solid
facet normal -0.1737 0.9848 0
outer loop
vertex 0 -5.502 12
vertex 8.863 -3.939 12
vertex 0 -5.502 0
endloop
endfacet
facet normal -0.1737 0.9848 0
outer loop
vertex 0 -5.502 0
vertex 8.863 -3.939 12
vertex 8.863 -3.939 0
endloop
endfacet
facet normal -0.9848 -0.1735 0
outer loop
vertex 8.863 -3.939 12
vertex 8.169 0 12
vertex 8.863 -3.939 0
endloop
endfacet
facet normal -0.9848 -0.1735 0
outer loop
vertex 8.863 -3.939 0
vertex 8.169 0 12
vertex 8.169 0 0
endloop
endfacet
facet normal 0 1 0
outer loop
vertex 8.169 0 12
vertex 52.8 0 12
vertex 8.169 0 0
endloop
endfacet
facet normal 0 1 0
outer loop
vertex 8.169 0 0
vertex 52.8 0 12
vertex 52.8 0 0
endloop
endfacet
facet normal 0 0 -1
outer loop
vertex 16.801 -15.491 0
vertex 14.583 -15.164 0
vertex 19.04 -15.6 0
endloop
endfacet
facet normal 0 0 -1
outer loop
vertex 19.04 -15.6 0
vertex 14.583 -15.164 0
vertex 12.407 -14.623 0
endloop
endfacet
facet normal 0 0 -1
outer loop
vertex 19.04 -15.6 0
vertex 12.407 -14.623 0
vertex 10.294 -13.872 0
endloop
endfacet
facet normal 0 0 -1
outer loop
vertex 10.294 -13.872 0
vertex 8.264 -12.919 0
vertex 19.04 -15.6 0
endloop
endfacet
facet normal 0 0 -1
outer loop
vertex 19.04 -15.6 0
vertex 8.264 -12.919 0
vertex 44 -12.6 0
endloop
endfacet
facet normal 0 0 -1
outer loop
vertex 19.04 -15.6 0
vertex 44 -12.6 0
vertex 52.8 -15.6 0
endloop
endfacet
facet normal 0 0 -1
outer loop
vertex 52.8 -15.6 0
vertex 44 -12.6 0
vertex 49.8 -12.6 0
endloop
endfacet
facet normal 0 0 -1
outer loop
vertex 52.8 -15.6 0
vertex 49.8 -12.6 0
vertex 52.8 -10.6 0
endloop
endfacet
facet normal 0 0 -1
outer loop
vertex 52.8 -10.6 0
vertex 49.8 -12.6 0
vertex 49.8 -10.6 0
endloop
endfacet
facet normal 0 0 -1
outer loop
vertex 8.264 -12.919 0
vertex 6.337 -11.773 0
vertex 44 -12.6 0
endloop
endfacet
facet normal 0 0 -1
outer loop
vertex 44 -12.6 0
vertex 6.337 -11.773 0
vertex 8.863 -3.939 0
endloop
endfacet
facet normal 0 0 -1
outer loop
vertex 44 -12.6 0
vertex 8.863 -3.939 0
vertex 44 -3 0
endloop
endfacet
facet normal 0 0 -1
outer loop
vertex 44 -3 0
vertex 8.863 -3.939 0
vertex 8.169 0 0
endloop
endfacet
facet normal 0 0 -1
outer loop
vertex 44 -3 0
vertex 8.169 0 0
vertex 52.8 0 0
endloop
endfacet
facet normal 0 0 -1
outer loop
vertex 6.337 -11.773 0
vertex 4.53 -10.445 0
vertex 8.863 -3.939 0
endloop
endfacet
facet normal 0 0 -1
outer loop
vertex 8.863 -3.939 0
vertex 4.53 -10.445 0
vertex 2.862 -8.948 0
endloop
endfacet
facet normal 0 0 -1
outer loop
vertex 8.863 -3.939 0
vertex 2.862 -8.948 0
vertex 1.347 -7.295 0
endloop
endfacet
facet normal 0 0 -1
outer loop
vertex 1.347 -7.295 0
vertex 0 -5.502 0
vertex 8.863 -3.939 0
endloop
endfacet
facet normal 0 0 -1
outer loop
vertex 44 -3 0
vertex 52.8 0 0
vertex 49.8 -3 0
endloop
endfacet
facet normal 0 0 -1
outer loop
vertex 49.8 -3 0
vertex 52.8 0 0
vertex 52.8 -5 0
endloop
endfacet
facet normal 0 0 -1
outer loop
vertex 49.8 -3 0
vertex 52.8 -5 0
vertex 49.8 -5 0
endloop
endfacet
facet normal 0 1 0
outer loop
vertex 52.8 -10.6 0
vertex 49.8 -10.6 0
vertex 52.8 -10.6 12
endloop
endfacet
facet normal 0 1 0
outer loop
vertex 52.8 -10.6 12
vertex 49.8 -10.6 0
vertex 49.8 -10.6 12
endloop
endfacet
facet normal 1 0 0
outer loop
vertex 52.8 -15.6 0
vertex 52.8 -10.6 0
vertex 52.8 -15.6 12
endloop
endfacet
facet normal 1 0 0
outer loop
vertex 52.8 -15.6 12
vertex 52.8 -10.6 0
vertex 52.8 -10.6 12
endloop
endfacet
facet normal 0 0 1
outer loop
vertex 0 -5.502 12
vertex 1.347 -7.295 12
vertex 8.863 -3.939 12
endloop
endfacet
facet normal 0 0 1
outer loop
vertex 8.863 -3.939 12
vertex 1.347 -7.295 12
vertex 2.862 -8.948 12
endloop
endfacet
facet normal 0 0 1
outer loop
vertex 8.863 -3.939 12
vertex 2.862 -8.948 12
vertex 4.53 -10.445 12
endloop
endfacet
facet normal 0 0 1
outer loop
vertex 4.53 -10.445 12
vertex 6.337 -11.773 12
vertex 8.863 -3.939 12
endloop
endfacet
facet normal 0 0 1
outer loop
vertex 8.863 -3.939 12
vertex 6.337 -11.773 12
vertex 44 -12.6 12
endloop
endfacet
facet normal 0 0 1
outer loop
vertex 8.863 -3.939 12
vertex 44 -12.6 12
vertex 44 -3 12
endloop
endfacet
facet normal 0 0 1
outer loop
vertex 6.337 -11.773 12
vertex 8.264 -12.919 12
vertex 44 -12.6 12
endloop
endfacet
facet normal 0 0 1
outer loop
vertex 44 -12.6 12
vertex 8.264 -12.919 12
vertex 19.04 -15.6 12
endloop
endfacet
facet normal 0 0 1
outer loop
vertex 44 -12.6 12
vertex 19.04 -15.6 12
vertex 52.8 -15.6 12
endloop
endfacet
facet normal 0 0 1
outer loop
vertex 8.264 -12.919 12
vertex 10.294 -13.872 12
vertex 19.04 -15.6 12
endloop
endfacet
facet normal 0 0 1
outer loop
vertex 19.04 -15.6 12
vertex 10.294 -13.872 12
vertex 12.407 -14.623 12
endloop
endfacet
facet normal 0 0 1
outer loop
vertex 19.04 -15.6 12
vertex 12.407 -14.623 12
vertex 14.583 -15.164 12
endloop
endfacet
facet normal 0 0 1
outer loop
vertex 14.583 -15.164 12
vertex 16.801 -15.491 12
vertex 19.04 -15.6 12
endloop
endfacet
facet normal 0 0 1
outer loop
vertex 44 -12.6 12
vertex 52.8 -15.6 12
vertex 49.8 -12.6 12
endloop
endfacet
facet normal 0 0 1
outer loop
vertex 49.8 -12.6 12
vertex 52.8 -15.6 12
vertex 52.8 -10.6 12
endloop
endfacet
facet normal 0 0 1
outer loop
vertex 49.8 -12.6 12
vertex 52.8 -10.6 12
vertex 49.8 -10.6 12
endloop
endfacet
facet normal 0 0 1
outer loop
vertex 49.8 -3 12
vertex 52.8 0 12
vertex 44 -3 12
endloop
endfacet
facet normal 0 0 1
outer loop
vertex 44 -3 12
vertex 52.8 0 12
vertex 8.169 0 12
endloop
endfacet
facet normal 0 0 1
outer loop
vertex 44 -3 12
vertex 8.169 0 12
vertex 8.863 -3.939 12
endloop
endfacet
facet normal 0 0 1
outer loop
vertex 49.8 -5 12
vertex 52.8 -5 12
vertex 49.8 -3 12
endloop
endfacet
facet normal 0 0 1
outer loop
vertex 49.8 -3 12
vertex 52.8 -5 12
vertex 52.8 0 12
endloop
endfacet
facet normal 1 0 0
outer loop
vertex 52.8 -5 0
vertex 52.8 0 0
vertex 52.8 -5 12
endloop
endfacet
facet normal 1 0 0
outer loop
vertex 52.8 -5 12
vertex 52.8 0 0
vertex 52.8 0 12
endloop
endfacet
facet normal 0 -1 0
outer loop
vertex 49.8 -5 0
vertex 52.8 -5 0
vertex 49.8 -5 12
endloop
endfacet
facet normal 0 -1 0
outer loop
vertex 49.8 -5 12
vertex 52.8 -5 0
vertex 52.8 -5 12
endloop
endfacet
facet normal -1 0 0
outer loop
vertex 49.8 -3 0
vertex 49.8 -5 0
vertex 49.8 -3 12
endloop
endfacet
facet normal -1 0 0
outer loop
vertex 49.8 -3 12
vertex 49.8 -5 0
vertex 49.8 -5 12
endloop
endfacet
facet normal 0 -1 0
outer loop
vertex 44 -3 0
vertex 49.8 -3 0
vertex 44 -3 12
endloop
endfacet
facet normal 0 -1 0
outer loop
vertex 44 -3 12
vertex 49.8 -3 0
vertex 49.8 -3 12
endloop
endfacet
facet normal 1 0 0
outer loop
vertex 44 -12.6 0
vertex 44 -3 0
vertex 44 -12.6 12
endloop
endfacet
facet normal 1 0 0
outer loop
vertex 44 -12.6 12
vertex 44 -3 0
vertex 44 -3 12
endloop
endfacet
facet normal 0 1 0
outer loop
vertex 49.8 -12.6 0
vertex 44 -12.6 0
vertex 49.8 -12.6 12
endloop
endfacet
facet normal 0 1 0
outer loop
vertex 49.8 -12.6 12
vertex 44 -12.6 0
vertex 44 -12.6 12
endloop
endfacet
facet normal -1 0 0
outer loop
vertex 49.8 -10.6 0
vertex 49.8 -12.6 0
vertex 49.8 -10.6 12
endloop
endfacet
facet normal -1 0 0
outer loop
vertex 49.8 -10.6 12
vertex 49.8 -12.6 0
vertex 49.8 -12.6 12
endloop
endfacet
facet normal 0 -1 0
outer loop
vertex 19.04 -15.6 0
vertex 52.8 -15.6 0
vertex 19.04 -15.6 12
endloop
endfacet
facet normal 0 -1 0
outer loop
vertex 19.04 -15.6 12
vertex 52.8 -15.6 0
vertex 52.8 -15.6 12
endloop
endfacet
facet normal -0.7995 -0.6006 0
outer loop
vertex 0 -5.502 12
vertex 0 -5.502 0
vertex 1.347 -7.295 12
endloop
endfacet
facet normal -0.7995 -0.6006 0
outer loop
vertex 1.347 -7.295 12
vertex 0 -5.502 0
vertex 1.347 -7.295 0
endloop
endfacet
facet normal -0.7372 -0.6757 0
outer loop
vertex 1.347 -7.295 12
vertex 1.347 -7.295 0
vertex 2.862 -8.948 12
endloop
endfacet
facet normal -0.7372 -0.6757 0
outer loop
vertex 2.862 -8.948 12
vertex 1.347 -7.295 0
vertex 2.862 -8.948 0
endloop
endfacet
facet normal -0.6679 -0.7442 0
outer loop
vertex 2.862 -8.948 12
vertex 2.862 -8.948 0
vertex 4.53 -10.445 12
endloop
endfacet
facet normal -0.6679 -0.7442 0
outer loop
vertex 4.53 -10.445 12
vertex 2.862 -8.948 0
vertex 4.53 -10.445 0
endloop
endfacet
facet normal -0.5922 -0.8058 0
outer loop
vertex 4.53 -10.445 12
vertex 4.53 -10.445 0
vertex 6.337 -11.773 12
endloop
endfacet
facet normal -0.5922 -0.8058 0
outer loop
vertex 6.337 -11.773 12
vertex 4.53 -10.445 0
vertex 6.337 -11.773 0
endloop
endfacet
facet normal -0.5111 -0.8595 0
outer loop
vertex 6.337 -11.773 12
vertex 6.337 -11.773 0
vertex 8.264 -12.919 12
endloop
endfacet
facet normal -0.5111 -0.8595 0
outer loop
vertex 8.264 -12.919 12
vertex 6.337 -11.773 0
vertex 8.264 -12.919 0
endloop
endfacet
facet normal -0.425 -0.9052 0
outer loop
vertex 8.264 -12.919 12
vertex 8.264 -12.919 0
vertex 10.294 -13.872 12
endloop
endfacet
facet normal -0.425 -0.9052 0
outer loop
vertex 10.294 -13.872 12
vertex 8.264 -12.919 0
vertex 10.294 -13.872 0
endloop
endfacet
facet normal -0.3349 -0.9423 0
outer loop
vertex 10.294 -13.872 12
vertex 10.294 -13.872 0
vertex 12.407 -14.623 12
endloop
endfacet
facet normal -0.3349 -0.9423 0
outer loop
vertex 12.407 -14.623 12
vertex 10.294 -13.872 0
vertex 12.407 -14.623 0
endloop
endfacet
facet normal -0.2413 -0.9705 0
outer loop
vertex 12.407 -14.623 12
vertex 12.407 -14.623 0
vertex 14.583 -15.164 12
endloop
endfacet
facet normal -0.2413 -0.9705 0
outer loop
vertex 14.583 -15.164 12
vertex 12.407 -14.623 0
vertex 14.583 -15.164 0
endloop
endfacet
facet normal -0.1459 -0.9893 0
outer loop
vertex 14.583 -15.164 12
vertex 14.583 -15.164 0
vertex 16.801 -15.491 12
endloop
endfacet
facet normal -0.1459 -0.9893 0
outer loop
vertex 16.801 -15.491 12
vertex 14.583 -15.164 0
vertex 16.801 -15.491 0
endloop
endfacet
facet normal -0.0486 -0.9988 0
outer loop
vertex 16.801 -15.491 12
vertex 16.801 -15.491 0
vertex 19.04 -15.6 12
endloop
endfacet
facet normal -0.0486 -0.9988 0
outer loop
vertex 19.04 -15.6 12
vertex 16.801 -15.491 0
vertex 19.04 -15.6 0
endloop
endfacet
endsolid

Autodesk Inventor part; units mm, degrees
ref_plane "YZ Plane" through (0, 0, 0) normal (1, 0, 0) x (0, 1, 0)
ref_plane "XZ Plane" through (0, 0, 0) normal (0, 1, 0) x (-1, 0, 0)
ref_plane "XY Plane" through (0, 0, 0) normal (0, 0, 1) x (1, 0, 0)
sketch "Sketch5" plane through (0, 0, 0) normal (0, 0, 1) x (1, 0, 0)
  line L0 (52.8, -15.6) -> (52.8, -10.6)
  line L1 (52.8, -10.6) -> (49.8, -10.6)
  line L2 (49.8, -10.6) -> (49.8, -12.6)
  line L3 (44, -12.6) -> (44, -3)
  line L4 (49.8, -3) -> (49.8, -5)
  line L5 (49.8, -5) -> (52.8, -5)
  line L6 (52.8, -5) -> (52.8, 0)
  line L7 (52.8, 0) -> (7.8, 0)
  line L8 (44, -3) -> (49.8, -3)
  line L9 (44, -12.6) -> (49.8, -12.6)
  line L10 (52.8, -15.6) -> (7.8, -15.6)
  line L11 (7.8, -15.6) -> (0, -15.6)
  line L12 (0, -15.6) -> (0, 0)
  line L13 (0, 0) -> (7.8, 0)
  point P0 (7.8, 0)
  dimension "d41" = 5.8
  dimension "d48" = 44
  dimension "d50" = 3
  dimension "d63" = 45
  dimension "d71" = 0
  dimension "d87" = 5.6
  dimension "d88" = 9.6
  dimension "d97" = 15.6
extrude "Extrusion2" add sketch "Sketch5" along normal blind 12
sketch "Sketch8" plane through (0, 0, 0) normal (0, 0, -1) x (-1, 0, 0)
  line L0 (-8.1687, 0) -> (-8.8633, -3.9392)
  line L1 (-7.8, 0) -> (-1.143, 0) construction
  line L2 (0, -5.5021) -> (-8.8633, -3.9392)
  line L3 (-7.8, 0) -> (-8.1687, 0)
  line L4 (0, 0) -> (0, -15.6) projected
  line L5 (-52.8, 0) -> (0, 0) projected
  line L6 (-7.8, 0) -> (0, 0)
  line L7 (0, 0) -> (0, -5.5021)
  dimension "d80" = 100
  dimension "d95" = 4
  dimension "d96" = 9
extrude "Extrusion5" cut sketch "Sketch8" against normal through all
fillet "Fillet2" radius 23 1 edges at (0, -15.6, 6)
equation "\"l1\" = 8"
properties part number "Finray_test_8_Kerbe_10deg"
